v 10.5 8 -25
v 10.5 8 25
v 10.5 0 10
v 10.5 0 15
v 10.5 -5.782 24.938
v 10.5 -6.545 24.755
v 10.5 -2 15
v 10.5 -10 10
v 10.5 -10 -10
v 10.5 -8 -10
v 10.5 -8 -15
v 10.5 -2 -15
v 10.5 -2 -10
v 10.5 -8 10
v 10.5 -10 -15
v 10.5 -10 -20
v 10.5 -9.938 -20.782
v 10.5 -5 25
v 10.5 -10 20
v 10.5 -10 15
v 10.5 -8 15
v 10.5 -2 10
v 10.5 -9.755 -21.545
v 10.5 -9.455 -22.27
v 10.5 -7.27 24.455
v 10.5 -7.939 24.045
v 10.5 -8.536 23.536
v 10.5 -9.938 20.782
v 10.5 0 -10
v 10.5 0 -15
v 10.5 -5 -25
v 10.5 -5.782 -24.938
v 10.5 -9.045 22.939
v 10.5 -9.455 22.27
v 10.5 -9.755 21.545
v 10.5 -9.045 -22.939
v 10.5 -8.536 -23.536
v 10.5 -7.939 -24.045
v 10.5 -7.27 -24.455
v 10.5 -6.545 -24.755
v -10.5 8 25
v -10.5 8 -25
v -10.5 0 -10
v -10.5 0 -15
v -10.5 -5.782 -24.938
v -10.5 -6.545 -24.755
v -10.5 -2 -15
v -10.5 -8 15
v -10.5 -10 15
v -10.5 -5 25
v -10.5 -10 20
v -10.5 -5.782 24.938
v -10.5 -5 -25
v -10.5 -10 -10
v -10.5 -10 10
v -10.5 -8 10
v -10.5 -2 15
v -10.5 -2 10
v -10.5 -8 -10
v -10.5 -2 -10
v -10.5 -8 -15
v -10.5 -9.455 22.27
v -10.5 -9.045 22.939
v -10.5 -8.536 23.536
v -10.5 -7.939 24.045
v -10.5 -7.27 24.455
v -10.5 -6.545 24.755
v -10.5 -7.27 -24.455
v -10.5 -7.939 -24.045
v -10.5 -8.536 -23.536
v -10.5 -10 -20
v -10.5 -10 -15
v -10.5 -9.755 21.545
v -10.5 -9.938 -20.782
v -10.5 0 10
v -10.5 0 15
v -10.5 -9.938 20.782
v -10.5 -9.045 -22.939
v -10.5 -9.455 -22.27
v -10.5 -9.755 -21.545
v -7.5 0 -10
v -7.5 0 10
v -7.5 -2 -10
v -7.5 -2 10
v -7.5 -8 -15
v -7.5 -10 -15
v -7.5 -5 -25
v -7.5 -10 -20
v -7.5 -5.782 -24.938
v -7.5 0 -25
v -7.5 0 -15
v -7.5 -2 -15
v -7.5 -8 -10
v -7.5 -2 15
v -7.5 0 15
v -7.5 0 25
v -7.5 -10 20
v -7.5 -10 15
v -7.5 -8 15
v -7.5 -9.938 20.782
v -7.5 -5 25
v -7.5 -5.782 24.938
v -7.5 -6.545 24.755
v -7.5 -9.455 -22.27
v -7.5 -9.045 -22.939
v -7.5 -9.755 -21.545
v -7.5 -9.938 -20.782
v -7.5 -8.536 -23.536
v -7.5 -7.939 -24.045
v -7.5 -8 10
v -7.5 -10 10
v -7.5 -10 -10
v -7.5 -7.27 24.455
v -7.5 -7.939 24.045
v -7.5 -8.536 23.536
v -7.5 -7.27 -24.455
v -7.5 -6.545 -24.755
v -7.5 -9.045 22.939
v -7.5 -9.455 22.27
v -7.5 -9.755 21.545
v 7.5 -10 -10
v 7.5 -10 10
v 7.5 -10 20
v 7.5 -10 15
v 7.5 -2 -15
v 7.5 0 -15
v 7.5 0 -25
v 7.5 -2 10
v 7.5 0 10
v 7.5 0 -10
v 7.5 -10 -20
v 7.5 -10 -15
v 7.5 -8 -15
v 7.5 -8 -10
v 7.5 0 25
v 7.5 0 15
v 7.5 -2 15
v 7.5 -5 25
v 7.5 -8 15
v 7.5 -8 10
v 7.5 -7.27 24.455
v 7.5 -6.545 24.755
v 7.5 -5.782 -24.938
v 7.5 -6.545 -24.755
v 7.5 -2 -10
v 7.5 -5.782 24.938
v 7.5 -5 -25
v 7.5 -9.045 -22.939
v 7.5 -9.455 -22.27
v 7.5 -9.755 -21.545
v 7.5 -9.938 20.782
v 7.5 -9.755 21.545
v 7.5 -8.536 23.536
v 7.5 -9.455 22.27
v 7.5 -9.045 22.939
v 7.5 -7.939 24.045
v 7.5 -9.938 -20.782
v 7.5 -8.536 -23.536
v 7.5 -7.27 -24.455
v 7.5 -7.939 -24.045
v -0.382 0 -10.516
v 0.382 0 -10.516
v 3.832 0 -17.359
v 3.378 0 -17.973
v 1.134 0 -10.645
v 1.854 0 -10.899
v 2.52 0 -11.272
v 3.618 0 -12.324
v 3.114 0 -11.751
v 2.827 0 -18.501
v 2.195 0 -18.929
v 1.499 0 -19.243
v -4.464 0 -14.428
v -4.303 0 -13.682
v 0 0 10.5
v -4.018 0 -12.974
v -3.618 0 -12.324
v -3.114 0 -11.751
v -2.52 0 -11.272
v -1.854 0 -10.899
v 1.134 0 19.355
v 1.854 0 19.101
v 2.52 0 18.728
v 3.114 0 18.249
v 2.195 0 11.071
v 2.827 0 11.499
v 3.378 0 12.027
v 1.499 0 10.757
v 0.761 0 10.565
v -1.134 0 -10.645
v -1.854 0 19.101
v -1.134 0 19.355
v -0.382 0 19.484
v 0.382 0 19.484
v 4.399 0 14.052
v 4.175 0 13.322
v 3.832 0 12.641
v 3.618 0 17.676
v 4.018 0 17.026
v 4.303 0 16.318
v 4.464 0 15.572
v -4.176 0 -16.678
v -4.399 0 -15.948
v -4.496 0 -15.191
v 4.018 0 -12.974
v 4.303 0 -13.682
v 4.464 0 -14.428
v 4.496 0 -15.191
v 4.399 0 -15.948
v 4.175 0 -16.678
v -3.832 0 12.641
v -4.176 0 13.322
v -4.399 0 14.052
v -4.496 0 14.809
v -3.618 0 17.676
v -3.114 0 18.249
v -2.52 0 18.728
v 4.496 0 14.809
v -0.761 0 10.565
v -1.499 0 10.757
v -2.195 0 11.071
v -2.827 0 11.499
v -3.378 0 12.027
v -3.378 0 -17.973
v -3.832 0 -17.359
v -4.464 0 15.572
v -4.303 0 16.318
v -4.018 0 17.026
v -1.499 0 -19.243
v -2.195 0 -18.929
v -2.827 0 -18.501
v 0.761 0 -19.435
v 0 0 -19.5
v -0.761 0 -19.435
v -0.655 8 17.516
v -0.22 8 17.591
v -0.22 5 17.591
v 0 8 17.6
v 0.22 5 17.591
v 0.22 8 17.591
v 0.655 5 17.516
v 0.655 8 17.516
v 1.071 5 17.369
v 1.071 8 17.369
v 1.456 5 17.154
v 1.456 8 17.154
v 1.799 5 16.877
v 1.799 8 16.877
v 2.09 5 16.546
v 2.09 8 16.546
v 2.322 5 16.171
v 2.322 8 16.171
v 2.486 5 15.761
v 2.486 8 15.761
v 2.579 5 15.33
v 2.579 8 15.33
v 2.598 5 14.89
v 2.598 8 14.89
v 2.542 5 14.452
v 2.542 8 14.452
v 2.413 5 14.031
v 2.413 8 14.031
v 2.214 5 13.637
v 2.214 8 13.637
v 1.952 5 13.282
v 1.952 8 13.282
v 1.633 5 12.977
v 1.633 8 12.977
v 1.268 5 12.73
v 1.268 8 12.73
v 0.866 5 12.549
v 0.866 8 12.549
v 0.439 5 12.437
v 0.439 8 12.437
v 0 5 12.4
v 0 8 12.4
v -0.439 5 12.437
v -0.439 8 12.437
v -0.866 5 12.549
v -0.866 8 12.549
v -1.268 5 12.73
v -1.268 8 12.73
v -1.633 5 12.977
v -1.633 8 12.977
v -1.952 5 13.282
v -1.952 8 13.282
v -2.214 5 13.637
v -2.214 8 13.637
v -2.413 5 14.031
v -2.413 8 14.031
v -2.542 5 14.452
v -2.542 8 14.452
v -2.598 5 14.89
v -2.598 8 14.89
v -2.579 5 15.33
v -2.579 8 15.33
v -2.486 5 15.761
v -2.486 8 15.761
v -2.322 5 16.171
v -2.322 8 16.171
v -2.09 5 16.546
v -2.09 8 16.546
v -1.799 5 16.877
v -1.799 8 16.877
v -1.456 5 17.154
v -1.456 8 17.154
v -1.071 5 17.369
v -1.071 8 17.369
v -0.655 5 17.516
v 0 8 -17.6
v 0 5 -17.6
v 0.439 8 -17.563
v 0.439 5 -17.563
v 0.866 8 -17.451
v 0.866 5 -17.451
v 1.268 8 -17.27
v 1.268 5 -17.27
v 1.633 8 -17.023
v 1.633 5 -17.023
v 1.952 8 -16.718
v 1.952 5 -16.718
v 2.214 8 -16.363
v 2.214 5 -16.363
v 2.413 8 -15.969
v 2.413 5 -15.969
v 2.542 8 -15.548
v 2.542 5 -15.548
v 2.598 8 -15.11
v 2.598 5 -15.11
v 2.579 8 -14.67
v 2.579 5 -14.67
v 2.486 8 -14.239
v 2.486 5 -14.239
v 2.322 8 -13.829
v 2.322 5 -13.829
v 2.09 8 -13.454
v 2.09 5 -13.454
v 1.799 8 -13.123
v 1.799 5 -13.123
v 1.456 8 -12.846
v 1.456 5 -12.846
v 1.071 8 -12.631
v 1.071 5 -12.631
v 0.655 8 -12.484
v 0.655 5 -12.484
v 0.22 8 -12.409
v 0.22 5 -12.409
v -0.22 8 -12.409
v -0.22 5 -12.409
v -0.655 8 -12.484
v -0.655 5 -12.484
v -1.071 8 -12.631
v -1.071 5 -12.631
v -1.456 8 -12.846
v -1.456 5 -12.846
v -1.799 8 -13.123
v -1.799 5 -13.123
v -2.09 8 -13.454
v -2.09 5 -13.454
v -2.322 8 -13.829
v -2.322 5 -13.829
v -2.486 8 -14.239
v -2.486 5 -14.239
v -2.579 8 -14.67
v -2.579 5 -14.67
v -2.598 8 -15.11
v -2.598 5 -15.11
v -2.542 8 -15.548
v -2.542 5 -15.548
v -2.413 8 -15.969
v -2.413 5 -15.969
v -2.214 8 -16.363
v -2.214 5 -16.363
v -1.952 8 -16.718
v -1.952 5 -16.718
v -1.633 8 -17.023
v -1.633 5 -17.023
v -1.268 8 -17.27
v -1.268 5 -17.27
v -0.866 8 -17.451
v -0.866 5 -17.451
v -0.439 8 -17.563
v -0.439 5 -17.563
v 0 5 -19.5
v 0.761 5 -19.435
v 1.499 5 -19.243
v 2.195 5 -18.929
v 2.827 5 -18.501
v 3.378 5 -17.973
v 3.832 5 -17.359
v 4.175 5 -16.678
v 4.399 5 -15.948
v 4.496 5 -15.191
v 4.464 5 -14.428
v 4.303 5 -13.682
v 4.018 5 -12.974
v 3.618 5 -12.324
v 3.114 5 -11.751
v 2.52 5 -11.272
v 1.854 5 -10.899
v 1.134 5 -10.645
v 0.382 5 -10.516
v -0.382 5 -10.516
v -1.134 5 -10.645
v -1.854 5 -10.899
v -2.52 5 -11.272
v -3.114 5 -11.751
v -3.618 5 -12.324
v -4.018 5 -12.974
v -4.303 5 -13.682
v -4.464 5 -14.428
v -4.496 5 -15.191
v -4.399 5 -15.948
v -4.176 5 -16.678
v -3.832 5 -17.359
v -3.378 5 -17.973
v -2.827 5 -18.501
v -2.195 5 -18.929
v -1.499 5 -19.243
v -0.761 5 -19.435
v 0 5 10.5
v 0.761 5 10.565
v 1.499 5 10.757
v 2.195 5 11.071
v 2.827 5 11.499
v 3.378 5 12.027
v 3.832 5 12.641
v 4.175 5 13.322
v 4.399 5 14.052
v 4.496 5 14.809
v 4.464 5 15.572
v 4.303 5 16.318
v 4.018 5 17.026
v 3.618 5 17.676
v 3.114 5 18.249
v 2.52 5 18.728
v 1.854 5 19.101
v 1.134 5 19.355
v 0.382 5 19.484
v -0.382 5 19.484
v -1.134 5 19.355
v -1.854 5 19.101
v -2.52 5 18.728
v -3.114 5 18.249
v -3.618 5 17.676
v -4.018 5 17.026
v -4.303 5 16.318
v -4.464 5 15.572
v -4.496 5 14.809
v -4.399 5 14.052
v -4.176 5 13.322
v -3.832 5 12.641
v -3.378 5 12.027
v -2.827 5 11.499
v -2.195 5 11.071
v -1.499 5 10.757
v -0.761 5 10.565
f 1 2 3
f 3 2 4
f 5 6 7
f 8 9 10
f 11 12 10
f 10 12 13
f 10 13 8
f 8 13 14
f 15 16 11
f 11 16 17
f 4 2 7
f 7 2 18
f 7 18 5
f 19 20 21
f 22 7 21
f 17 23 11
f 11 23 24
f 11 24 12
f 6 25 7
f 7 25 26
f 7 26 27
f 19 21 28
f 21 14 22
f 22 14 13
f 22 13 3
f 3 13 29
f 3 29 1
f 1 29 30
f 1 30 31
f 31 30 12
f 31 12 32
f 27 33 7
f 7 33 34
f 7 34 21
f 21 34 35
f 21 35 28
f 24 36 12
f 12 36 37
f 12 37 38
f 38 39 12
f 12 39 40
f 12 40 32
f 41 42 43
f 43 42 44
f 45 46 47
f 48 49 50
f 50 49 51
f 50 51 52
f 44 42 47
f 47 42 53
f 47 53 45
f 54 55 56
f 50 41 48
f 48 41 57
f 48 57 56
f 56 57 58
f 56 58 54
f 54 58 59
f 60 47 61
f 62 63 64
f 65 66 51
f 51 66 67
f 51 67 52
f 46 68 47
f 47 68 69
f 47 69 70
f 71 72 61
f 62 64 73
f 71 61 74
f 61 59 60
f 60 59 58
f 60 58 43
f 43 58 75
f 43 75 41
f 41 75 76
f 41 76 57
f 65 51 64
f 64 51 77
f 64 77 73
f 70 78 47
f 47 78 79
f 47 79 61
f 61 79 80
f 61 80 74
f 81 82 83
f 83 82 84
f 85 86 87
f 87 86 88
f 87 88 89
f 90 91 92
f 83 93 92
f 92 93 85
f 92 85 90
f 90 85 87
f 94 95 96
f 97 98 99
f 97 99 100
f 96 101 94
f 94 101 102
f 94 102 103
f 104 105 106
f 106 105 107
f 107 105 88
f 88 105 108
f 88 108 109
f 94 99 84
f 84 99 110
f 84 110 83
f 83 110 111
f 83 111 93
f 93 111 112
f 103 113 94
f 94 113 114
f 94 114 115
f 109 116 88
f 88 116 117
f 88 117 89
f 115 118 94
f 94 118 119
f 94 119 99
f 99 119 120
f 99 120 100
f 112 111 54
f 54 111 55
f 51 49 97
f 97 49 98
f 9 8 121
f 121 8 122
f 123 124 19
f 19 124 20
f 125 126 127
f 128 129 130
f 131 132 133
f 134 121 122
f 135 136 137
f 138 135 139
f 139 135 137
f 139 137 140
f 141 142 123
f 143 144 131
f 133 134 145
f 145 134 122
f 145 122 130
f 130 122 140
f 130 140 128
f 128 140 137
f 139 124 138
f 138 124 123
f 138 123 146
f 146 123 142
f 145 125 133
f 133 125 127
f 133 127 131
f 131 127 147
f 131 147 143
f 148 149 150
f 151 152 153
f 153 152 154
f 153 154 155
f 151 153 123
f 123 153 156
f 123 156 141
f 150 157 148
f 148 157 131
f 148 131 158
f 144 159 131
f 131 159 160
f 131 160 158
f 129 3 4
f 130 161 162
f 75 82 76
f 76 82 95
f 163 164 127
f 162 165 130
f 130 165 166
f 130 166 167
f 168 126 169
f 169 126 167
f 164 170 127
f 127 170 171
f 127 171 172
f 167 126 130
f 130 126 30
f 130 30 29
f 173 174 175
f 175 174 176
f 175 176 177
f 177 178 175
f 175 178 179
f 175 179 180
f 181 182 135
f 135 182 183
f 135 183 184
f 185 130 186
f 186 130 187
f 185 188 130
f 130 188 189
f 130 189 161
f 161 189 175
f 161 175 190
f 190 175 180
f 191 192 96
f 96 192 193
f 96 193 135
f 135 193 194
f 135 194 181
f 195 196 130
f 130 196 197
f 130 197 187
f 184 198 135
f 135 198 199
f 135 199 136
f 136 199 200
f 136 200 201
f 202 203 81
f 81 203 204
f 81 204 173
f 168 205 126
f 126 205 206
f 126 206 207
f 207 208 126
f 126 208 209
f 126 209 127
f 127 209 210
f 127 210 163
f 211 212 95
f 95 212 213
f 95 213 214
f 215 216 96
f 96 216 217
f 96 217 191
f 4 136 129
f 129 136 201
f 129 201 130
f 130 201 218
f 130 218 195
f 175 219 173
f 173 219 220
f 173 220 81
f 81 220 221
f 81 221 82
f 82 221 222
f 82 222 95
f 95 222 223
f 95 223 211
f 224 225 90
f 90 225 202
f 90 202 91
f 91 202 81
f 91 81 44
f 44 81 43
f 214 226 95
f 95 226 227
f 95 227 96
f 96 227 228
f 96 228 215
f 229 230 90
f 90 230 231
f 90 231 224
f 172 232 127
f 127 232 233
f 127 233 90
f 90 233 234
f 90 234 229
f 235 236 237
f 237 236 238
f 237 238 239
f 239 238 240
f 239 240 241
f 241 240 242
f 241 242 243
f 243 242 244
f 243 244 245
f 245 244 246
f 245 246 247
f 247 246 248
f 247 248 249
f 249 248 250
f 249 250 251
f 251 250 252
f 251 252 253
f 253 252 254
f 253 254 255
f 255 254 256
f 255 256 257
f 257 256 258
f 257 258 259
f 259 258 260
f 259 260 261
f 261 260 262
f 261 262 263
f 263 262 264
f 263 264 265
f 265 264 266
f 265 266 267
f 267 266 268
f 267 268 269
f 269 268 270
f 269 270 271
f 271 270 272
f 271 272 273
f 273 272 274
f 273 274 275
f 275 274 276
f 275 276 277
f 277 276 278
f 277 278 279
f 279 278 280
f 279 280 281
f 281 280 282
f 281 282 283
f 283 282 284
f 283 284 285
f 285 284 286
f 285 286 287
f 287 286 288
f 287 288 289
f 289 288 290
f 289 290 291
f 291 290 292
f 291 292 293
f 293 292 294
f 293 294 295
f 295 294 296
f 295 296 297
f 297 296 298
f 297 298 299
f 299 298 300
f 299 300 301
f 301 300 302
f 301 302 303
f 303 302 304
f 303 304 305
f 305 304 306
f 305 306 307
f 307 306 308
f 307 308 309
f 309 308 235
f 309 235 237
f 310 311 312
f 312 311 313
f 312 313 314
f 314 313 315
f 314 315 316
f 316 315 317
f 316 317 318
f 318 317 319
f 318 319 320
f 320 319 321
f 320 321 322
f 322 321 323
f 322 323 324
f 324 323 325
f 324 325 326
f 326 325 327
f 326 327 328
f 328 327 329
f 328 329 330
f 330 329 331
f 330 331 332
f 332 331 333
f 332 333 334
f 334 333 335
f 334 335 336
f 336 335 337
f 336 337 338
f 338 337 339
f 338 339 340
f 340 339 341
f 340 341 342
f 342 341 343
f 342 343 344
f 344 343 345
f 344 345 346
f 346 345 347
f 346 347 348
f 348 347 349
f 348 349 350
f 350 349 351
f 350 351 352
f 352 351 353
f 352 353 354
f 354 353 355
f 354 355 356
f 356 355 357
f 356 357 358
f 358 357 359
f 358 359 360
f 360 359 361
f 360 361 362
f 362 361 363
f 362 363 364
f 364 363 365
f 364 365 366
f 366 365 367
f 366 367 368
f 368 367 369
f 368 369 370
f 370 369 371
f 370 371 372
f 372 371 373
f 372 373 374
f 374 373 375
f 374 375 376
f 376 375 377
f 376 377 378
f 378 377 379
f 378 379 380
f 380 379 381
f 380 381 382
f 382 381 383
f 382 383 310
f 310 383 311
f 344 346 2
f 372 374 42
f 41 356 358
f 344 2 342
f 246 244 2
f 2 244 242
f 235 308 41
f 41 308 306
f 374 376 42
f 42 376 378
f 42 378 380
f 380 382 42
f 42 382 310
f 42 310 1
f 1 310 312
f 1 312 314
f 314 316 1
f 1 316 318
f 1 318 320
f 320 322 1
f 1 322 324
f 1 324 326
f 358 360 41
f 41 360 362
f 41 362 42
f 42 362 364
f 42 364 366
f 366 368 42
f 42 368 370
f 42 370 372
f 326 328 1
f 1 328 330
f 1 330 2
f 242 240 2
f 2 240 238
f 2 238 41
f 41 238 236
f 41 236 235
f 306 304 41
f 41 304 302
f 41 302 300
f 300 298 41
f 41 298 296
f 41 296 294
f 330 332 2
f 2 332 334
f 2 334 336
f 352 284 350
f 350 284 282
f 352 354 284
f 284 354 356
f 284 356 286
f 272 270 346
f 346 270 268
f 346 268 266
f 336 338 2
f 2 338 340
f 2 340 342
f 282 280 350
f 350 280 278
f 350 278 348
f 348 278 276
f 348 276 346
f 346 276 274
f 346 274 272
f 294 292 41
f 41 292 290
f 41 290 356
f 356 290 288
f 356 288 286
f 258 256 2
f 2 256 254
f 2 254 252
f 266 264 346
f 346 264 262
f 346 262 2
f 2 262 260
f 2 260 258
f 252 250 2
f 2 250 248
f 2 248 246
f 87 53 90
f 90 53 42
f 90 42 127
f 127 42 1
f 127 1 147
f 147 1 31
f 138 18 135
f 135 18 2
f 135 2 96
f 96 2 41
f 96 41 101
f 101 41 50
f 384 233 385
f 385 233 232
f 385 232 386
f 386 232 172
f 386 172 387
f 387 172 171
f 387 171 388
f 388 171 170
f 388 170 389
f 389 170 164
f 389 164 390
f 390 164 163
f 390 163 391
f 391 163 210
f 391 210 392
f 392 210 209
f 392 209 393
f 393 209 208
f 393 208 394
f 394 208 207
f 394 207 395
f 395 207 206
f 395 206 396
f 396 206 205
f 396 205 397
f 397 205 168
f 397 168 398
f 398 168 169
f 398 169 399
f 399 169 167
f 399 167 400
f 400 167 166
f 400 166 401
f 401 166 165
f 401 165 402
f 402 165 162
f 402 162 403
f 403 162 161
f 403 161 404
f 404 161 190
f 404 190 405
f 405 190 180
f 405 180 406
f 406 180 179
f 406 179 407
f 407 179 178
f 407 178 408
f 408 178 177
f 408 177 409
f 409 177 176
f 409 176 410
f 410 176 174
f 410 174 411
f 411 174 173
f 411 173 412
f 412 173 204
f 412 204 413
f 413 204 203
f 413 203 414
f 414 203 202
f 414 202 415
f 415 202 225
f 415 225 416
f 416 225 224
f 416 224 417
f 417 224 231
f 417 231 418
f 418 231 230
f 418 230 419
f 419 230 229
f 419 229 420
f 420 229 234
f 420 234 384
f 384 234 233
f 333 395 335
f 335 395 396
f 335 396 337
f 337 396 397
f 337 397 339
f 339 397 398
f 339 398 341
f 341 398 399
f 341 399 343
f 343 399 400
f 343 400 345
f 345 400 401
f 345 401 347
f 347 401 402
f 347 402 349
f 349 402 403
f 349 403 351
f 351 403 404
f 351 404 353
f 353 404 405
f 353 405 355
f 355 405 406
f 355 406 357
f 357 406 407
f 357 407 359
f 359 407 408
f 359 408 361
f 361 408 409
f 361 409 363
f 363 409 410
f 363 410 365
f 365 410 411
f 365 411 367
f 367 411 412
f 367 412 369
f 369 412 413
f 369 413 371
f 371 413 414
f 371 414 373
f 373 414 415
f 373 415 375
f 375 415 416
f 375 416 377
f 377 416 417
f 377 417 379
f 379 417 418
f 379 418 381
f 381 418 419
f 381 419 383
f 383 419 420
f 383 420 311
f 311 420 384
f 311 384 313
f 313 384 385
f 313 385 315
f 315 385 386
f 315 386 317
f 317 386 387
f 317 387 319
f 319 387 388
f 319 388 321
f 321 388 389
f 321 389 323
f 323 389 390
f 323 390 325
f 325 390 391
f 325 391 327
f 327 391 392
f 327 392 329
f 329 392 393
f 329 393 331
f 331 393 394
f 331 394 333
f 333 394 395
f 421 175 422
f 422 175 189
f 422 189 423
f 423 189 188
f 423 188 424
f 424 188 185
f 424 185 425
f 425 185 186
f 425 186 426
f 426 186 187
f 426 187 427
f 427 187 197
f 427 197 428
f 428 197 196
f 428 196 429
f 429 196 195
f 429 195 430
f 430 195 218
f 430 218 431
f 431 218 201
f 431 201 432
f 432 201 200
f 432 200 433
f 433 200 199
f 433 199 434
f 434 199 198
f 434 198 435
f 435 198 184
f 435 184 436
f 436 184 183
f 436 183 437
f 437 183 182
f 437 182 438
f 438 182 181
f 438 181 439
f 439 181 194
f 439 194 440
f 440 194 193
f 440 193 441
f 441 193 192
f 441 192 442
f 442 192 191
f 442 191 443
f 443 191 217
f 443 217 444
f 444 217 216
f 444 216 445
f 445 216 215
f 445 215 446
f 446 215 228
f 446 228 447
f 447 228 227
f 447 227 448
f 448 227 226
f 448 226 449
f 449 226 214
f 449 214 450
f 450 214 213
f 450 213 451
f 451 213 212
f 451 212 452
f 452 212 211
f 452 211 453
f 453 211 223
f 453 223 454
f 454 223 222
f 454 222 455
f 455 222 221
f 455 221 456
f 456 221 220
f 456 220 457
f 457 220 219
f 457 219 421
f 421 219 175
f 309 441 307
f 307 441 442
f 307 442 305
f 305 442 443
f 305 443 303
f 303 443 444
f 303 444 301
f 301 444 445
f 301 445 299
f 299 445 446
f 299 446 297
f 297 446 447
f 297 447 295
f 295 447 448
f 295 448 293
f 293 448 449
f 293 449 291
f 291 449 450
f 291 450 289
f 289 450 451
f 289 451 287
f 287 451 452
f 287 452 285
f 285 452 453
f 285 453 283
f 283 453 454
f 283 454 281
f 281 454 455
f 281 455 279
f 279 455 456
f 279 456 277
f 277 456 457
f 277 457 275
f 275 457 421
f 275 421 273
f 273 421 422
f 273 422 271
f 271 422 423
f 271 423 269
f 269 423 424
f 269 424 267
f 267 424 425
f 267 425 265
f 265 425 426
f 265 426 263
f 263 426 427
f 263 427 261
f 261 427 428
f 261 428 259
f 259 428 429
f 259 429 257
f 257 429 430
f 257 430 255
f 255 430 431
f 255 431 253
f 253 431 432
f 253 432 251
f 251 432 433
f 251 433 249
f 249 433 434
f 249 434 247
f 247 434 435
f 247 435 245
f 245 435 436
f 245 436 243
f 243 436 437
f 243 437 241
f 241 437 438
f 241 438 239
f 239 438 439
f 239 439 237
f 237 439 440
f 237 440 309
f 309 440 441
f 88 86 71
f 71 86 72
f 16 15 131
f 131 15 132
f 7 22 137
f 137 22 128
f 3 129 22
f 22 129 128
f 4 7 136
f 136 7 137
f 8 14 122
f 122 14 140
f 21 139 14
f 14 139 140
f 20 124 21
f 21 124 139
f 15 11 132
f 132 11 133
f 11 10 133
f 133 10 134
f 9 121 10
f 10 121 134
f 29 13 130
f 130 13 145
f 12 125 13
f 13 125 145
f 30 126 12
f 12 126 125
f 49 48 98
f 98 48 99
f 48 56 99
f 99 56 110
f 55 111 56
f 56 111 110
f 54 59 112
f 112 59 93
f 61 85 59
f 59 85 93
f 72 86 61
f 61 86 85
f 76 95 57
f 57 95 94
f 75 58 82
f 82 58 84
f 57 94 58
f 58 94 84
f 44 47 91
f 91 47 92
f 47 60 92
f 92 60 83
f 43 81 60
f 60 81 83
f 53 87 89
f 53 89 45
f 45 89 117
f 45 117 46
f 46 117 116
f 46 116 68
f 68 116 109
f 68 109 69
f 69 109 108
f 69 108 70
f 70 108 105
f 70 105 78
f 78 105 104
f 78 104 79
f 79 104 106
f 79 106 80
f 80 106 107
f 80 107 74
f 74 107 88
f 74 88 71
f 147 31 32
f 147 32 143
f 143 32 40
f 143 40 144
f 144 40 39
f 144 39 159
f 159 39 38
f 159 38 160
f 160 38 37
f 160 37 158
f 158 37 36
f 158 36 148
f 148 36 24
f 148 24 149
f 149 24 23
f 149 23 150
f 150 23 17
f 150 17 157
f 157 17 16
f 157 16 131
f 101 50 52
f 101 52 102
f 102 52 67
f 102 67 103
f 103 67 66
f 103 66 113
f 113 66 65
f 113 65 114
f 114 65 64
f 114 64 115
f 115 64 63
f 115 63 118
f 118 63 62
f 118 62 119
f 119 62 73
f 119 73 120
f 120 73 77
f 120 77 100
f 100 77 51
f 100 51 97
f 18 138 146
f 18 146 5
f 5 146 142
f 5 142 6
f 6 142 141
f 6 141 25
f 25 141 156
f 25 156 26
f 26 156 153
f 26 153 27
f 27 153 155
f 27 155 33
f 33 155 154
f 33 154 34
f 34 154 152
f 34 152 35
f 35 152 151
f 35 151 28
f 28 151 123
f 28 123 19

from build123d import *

# Parameters (mm, degrees)
SKETCH1_W           = 21
SKETCH1_H           = 50
SKETCH1_R           = 2.6
BOSS_EXTRUDE1_DEPTH = 8
SKETCH2_R           = 4.5
CUT_EXTRUDE1_DEPTH  = 5
SKETCH3_W           = 3
SKETCH3_H           = 10
BOSS_EXTRUDE2_DEPTH = 50
SKETCH4_W           = 2
SKETCH4_H           = 5
CUT_EXTRUDE2_DEPTH  = 22
FILLET1_R           = 5


with BuildPart() as part:
    # Sketch1 → Boss-Extrude1 (new body)
    with BuildSketch(Plane(origin=(0, 0, 0), x_dir=(1, 0, 0), z_dir=(0, 1, 0))):
        Rectangle(SKETCH1_W, SKETCH1_H)
        with Locations((0, -15)):
            Circle(SKETCH1_R, mode=Mode.SUBTRACT)
        with Locations((0, 15)):
            Circle(SKETCH1_R, mode=Mode.SUBTRACT)
    extrude(amount=BOSS_EXTRUDE1_DEPTH)

    # Sketch2 → Cut-Extrude1 (cut)
    with BuildSketch(Plane.XZ):
        with Locations((0, 15)):
            Circle(SKETCH2_R)
        with Locations((0, -15)):
            Circle(SKETCH2_R)
    extrude(amount=-CUT_EXTRUDE1_DEPTH, mode=Mode.SUBTRACT)

    # Sketch3 → Boss-Extrude2 (add)
    with BuildSketch(Plane.XY.offset(25)):
        with Locations((-9, -5)):
            Rectangle(SKETCH3_W, SKETCH3_H)
        with Locations((9, -5)):
            Rectangle(SKETCH3_W, SKETCH3_H)
    extrude(amount=-BOSS_EXTRUDE2_DEPTH)

    # Sketch4 → Cut-Extrude2 (cut, through all)
    with BuildSketch(Plane(origin=(10.5, 13.5, 0), x_dir=(0, -1, 0), z_dir=(1, 0, 0))):
        with Locations((14.5, -12.5)):
            Rectangle(SKETCH4_W, SKETCH4_H)
        with Locations((22.5, -12.5)):
            Rectangle(SKETCH4_W, SKETCH4_H)
        with Locations((22.5, 12.5)):
            Rectangle(SKETCH4_W, SKETCH4_H)
        with Locations((14.5, 12.5)):
            Rectangle(SKETCH4_W, SKETCH4_H)
    extrude(amount=-CUT_EXTRUDE2_DEPTH, mode=Mode.SUBTRACT)

    # Fillet1
    fillet1_edges = [part.edges().sort_by_distance(p)[0] for p in [
        (-9, -10, -25),
        (-9, -10, 25),
        (9, -10, 25),
        (9, -10, -25),
    ]]
    fillet(fillet1_edges, radius=FILLET1_R)


solid = part.part
